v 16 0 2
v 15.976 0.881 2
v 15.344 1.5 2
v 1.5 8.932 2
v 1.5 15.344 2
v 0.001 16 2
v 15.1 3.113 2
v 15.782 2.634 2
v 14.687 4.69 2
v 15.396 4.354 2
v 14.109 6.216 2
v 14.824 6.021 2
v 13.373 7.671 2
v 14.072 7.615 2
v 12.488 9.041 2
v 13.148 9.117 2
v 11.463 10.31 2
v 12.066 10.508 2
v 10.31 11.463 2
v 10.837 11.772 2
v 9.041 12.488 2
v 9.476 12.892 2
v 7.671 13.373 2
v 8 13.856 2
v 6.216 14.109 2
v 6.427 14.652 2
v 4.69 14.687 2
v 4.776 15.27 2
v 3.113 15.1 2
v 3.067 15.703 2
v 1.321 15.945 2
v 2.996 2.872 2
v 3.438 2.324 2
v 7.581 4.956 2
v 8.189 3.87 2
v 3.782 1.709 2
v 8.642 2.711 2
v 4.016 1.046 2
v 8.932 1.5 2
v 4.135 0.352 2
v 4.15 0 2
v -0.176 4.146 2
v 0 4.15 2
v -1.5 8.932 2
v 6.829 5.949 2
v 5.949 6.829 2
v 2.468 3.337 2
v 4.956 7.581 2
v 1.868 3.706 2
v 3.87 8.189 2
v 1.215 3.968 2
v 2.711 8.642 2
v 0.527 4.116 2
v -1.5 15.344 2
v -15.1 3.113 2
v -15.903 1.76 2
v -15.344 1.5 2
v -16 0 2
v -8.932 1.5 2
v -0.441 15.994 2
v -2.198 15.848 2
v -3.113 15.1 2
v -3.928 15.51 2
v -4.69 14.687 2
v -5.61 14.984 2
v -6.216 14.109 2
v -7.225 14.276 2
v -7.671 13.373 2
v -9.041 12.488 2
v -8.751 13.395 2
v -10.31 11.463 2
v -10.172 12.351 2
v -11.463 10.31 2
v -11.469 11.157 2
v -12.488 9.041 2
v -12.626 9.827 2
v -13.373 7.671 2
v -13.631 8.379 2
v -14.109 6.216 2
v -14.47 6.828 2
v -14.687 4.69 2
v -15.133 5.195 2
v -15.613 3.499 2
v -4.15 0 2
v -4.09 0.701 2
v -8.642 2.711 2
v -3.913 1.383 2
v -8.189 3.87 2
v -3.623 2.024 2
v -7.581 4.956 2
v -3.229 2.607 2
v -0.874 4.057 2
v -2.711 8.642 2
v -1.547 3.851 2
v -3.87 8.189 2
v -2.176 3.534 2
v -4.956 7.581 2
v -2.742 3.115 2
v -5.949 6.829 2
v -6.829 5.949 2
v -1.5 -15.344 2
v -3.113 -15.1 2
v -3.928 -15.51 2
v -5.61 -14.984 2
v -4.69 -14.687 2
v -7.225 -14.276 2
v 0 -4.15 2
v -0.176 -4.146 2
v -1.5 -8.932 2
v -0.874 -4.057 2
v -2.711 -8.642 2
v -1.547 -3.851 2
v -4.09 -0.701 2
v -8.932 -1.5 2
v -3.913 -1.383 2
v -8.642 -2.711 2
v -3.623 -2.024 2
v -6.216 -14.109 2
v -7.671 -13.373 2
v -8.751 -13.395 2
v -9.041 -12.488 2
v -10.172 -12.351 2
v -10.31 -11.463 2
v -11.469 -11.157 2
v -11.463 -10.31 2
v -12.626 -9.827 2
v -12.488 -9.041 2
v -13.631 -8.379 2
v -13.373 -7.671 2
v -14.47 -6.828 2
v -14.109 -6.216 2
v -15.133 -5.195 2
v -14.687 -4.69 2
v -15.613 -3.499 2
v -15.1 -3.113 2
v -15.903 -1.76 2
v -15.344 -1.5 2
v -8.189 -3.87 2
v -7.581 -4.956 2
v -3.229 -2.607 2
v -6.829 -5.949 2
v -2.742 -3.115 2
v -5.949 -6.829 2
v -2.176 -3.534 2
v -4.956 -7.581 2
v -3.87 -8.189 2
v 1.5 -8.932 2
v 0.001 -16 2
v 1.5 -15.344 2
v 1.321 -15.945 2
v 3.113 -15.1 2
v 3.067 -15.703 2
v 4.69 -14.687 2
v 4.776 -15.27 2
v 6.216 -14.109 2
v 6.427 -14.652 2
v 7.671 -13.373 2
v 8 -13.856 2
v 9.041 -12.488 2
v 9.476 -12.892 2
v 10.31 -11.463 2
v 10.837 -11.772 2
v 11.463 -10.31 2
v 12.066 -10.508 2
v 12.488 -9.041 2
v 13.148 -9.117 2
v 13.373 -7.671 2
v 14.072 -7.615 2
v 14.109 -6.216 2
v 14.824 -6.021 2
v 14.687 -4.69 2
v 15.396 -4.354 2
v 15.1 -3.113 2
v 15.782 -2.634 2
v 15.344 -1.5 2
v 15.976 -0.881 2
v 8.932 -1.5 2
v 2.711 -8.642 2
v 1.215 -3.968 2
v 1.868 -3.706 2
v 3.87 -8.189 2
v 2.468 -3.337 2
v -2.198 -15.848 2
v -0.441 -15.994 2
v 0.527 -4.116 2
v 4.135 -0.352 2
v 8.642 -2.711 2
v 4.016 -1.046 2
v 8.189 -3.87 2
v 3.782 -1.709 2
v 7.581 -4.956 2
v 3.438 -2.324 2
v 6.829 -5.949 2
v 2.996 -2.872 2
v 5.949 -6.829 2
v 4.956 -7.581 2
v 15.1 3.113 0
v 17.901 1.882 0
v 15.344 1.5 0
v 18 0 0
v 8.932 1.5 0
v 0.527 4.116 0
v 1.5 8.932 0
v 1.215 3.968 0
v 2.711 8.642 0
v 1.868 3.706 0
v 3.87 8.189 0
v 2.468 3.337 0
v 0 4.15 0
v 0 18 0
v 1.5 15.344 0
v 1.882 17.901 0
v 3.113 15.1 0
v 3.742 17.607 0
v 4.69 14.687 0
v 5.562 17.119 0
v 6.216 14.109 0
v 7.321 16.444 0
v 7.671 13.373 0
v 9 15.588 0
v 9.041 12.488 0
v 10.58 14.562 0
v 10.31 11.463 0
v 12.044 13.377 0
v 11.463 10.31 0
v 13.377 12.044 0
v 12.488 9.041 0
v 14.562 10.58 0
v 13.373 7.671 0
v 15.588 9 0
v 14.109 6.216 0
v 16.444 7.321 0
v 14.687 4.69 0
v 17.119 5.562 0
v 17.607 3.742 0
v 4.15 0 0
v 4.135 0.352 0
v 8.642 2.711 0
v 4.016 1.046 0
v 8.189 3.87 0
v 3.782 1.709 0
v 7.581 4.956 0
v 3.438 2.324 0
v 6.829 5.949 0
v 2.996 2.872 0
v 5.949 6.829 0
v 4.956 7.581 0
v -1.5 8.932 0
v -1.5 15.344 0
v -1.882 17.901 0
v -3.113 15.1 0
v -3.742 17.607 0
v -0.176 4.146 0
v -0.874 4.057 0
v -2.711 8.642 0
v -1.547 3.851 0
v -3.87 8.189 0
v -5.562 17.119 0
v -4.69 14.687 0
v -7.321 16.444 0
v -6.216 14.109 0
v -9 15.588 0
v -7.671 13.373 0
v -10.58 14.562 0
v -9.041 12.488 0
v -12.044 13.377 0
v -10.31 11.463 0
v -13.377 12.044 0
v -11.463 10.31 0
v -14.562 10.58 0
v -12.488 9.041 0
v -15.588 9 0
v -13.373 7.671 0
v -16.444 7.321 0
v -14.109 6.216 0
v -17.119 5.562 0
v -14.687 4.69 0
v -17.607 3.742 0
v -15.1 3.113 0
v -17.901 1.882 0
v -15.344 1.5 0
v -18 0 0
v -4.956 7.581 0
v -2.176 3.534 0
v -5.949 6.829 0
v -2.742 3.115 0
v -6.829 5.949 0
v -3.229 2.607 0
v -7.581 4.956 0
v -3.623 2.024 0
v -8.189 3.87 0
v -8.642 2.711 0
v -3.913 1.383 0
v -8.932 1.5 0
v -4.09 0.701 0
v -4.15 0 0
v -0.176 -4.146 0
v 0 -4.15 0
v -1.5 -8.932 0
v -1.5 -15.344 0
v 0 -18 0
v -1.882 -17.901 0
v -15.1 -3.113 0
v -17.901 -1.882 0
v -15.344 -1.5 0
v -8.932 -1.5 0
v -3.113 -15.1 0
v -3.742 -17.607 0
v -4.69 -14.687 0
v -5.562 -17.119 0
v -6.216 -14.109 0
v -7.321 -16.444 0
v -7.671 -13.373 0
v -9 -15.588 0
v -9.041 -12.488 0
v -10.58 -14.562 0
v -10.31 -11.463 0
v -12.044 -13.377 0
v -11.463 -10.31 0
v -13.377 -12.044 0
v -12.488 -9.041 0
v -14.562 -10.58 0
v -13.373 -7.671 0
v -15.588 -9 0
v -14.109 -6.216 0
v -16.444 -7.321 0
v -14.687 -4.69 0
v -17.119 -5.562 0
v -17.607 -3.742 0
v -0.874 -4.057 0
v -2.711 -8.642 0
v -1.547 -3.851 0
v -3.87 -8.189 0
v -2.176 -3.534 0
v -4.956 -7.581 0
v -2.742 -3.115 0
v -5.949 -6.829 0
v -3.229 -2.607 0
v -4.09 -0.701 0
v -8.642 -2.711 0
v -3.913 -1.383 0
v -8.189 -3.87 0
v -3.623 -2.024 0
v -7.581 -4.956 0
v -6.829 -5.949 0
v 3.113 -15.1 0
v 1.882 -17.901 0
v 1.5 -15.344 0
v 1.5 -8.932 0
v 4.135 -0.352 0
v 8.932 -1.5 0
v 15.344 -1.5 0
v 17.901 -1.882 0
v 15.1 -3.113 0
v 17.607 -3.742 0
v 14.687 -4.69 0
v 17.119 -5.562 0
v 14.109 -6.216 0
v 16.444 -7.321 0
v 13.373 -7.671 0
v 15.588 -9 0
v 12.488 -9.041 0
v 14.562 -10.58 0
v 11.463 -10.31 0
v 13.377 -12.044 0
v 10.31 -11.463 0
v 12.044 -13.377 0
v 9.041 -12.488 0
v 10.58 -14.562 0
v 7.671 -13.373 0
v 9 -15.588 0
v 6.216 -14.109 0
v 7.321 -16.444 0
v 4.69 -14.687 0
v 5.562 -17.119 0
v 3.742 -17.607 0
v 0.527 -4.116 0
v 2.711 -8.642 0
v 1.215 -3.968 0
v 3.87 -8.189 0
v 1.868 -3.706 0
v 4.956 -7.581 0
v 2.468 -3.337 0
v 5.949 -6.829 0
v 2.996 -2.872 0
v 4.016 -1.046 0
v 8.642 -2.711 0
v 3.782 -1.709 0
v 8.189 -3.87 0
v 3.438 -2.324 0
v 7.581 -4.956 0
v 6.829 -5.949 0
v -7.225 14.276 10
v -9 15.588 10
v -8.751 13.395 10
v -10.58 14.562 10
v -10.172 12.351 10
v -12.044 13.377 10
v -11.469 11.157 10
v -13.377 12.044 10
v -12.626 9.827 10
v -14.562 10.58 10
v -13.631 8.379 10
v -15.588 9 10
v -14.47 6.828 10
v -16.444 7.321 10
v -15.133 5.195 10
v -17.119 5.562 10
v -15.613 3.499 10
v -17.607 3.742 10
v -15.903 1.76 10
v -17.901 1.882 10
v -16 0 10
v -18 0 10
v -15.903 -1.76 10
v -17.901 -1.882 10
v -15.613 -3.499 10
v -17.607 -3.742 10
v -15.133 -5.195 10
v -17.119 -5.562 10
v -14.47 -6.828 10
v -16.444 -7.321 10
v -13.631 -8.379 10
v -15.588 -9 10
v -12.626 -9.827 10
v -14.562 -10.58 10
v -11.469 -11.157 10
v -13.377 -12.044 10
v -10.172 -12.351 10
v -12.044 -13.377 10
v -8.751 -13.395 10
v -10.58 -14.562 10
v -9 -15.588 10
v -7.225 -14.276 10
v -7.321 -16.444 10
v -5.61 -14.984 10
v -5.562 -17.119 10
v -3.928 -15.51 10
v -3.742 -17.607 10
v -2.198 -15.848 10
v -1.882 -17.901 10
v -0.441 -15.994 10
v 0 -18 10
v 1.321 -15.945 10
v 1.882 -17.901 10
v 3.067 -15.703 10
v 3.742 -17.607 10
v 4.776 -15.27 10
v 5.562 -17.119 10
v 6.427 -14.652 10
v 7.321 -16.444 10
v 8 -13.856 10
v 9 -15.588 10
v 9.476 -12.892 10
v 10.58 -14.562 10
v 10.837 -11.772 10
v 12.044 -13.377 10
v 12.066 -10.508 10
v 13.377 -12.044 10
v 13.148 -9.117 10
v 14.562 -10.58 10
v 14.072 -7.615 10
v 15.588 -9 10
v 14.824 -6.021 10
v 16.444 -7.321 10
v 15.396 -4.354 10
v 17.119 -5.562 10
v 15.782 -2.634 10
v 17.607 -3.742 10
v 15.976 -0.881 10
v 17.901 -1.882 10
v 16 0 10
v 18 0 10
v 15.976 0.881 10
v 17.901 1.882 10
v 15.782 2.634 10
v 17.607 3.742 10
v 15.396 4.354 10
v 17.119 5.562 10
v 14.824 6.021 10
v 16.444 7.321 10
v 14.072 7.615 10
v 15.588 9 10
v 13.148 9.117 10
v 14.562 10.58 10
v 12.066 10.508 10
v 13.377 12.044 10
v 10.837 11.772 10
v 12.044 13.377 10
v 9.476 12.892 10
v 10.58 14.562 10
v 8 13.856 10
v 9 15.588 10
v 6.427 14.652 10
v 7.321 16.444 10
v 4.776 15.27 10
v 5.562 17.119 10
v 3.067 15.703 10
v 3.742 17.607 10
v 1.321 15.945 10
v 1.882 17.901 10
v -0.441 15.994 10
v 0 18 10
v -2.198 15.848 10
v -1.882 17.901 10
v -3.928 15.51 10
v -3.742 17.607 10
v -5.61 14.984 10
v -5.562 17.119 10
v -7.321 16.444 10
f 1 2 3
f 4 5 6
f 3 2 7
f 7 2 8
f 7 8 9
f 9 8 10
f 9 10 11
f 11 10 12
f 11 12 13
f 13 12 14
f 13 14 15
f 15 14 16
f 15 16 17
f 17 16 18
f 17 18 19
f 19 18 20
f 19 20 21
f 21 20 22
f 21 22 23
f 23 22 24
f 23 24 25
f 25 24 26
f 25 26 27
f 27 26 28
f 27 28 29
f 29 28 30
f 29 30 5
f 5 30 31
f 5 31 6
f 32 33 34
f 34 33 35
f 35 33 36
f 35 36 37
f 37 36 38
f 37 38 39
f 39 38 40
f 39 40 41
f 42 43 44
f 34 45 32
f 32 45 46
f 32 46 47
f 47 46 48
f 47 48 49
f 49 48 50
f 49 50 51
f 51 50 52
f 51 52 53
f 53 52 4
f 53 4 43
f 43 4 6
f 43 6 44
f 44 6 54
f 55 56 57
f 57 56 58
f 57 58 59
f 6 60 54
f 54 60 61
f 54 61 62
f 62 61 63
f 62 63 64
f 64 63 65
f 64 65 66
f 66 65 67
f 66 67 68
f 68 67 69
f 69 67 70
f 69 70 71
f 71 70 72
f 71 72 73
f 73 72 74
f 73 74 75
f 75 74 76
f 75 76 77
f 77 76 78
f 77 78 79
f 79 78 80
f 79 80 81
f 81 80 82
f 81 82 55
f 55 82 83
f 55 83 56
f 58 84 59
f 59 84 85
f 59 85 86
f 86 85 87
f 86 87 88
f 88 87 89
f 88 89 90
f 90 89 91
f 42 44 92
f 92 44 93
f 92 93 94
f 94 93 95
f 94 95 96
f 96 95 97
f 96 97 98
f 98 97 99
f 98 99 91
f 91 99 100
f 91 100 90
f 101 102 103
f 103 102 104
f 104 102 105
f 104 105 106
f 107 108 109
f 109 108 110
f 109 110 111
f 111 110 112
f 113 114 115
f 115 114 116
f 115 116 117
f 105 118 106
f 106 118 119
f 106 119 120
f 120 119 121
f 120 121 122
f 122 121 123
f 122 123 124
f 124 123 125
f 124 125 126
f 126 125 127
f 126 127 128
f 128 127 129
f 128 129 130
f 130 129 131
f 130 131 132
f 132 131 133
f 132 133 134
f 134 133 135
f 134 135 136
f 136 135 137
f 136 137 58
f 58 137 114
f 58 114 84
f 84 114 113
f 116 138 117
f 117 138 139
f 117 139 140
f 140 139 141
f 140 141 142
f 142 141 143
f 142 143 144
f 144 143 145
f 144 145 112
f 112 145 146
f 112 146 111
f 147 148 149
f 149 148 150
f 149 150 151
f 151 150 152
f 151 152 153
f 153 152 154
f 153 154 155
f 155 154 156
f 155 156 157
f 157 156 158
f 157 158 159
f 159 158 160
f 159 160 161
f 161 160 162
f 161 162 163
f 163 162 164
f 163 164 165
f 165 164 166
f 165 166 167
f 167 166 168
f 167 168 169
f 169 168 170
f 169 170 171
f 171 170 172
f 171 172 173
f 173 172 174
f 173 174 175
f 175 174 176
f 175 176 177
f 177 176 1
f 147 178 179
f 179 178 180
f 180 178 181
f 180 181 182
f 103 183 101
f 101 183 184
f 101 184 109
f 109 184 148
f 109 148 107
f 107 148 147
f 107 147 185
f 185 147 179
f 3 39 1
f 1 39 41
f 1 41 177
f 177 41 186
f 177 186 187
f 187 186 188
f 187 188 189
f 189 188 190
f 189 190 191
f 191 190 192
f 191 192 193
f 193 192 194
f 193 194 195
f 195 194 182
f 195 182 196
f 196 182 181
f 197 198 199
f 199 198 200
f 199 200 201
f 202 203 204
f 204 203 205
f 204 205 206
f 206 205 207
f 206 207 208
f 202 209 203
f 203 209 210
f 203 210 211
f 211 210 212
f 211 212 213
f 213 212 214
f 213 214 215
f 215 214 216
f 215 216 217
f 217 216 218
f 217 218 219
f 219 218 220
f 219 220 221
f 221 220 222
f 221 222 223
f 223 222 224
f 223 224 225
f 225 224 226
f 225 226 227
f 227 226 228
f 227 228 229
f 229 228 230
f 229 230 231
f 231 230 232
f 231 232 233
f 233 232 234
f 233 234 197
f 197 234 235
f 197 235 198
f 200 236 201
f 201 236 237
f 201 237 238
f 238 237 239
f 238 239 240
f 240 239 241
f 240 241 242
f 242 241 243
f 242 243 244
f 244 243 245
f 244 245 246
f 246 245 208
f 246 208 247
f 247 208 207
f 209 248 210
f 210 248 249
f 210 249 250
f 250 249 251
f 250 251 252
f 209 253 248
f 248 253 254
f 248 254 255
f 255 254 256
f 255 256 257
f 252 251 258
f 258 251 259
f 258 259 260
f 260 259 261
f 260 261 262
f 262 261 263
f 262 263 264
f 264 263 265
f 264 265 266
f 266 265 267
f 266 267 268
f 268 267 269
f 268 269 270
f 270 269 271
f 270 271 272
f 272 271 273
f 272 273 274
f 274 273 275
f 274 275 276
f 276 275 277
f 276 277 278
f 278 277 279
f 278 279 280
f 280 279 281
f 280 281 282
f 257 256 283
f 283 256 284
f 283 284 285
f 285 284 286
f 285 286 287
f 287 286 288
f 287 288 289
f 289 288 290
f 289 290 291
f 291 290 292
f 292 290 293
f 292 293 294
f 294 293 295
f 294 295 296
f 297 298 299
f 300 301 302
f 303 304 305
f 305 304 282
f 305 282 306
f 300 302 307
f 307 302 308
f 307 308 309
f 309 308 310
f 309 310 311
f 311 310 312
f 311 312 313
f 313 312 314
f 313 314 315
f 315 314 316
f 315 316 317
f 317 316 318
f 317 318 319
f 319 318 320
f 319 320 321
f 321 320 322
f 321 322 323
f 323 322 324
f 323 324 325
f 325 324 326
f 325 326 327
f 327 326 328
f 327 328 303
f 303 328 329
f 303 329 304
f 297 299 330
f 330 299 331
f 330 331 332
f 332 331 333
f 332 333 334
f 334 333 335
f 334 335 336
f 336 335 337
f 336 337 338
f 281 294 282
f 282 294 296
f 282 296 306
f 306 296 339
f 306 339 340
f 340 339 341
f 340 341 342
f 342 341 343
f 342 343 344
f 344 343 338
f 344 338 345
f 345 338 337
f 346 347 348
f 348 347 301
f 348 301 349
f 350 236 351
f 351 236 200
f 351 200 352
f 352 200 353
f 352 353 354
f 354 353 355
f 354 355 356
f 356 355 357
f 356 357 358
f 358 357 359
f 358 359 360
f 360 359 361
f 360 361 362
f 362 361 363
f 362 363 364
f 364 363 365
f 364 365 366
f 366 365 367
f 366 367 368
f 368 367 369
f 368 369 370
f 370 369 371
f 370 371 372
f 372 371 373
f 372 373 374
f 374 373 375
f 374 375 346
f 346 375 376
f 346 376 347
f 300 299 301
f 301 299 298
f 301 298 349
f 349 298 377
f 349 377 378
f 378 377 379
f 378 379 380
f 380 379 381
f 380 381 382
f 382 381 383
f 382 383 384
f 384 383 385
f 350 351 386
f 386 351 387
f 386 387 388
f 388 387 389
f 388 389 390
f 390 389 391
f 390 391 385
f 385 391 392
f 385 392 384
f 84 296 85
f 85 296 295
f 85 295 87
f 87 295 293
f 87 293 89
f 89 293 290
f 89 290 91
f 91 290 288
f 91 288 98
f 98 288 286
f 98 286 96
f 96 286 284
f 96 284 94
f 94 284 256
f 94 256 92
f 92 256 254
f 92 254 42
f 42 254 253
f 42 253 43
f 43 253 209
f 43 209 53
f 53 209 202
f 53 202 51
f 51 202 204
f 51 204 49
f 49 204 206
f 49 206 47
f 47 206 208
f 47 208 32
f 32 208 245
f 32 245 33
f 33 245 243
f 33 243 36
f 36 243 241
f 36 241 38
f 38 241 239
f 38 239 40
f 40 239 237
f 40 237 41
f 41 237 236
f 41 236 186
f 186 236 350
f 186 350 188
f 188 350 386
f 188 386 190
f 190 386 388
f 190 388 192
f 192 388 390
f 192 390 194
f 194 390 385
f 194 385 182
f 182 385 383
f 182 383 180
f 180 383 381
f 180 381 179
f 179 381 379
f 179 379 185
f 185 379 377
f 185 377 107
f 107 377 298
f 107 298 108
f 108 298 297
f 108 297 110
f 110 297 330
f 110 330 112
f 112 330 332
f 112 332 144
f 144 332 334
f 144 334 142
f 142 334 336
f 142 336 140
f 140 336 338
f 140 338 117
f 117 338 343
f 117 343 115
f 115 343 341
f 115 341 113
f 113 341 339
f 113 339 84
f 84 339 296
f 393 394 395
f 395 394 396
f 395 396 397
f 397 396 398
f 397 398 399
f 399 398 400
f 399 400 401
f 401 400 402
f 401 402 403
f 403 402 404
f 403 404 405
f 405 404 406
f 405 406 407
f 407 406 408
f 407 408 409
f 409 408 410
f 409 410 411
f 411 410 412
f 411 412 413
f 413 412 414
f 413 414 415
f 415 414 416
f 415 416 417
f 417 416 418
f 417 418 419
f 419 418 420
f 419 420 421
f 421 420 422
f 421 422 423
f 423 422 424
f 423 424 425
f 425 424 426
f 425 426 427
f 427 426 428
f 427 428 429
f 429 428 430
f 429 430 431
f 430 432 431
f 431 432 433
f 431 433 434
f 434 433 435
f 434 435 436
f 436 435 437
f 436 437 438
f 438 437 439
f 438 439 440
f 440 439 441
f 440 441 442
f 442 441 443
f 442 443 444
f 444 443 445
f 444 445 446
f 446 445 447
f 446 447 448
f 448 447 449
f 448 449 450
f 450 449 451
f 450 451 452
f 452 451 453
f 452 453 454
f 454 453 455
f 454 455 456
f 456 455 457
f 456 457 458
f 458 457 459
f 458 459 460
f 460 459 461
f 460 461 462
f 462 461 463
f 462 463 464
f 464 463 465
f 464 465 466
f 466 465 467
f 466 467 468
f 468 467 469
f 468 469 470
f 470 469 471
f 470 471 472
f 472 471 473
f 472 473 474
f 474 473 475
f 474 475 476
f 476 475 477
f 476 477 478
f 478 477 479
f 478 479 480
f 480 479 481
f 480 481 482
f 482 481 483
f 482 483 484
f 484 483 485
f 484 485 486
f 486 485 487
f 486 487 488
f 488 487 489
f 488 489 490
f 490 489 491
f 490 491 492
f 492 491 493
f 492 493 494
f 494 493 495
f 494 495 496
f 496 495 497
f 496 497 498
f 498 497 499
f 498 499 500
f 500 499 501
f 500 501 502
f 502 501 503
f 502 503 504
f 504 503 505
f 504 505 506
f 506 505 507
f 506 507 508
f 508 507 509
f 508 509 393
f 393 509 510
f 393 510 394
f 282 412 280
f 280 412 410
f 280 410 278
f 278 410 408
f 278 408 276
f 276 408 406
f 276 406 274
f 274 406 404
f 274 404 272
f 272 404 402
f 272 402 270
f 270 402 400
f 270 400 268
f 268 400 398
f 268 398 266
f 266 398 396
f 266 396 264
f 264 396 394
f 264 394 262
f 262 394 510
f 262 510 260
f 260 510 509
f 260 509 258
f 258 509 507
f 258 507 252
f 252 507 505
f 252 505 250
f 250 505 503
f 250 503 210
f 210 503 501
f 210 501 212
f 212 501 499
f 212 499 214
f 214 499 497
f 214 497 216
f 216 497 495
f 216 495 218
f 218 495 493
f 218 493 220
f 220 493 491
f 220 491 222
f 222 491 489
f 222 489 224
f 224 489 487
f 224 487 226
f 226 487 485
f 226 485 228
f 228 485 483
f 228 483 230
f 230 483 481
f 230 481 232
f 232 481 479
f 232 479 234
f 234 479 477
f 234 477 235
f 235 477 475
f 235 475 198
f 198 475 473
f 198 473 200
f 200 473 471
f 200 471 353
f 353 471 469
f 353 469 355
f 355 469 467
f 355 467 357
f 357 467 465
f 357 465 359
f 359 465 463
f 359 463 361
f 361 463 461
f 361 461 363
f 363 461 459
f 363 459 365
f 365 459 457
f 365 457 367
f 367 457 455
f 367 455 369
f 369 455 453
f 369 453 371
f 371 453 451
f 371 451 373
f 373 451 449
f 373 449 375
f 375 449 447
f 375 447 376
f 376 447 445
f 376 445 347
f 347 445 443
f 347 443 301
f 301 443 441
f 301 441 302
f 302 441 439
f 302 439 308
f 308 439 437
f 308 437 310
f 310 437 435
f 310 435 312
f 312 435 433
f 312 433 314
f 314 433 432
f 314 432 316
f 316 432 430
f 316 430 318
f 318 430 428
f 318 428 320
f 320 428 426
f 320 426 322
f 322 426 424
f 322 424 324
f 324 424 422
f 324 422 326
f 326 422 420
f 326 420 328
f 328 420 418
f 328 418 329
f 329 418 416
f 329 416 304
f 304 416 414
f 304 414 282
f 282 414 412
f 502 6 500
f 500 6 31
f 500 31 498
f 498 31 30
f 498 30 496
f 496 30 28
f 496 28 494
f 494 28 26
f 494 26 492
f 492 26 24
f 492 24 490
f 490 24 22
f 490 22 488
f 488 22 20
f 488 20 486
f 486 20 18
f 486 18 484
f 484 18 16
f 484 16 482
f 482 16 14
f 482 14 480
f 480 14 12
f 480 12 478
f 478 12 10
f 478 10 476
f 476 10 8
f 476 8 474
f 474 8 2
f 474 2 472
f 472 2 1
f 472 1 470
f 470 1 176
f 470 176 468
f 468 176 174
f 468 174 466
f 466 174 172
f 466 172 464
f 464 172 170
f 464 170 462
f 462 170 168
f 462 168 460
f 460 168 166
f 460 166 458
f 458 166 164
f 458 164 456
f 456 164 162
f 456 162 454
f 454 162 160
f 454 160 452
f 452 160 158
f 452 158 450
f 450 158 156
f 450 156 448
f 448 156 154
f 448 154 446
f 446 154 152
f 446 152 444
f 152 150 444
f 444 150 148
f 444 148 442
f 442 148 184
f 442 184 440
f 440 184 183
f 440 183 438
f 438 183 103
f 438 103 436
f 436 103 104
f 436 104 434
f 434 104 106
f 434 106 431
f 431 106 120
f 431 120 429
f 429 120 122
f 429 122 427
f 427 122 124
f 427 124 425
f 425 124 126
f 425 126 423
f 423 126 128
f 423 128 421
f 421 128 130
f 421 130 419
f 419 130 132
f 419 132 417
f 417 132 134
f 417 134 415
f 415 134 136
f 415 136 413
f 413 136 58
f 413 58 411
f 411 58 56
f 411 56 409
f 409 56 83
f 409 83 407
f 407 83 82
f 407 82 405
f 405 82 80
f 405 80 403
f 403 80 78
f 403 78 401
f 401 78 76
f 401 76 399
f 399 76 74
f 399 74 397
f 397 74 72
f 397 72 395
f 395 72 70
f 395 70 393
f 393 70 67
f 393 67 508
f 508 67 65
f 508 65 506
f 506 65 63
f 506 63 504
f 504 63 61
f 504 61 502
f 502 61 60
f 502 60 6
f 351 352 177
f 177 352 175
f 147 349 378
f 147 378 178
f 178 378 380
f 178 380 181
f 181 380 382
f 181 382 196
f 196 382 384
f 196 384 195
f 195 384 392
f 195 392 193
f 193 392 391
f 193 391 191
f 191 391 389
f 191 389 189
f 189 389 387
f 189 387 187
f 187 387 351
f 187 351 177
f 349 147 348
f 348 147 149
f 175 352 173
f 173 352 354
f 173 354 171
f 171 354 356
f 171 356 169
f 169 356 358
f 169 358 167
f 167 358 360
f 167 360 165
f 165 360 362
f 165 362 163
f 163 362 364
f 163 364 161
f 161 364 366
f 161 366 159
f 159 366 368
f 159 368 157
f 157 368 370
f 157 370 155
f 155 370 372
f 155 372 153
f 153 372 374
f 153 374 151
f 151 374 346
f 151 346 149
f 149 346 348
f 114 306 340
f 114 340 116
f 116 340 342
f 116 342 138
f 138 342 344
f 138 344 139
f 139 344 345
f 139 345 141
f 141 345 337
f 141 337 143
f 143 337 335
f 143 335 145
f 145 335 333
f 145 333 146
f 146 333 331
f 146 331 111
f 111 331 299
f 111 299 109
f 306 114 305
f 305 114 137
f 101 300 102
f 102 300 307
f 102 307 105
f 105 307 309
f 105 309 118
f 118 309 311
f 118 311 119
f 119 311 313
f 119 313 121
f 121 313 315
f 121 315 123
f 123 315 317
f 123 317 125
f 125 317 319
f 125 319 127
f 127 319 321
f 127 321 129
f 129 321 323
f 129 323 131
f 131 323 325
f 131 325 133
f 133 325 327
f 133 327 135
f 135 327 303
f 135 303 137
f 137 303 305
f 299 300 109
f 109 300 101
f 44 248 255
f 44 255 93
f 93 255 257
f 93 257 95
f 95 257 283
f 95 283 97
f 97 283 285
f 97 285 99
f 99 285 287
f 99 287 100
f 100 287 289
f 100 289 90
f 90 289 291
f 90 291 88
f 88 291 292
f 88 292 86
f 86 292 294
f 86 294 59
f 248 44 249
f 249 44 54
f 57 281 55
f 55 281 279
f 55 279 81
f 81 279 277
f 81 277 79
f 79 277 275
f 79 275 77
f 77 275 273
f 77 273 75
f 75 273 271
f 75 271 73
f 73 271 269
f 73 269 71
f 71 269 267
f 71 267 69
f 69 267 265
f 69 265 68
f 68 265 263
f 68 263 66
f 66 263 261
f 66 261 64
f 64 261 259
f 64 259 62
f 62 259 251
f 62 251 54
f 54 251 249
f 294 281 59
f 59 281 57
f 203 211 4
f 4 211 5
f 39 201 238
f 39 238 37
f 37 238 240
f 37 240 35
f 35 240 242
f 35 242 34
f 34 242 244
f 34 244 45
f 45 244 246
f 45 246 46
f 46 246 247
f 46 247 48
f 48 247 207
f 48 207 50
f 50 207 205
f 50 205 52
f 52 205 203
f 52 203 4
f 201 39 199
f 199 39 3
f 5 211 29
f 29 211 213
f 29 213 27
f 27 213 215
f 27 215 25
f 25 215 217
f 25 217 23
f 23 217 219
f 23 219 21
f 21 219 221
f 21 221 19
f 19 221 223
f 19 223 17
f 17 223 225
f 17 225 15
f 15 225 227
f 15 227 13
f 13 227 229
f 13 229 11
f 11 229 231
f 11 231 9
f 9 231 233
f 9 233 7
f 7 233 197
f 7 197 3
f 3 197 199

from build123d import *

# Parameters (mm, degrees)
ESBO_O1_R                = 16
ESBO_O1_R_2              = 4.15
RESSALTO_EXTRUS_O1_DEPTH = 2
ESBO_O2_R                = 18
ESBO_O2_R_2              = 16
RESSALTO_EXTRUS_O2_DEPTH = 10
CORTE_EXTRUS_O1_DEPTH    = 10


with BuildPart() as part:
    # Esboço1 → Ressalto-extrusão1 (new body)
    with BuildSketch(Plane.XY):
        Circle(ESBO_O1_R)
        Circle(ESBO_O1_R_2, mode=Mode.SUBTRACT)
    extrude(amount=RESSALTO_EXTRUS_O1_DEPTH)

    # Esboço2 → Ressalto-extrusão2 (add)
    with BuildSketch(Plane.XY):
        Circle(ESBO_O2_R)
        Circle(ESBO_O2_R_2, mode=Mode.SUBTRACT)
    extrude(amount=RESSALTO_EXTRUS_O2_DEPTH)

    # Esboço3 → Corte-extrusão1 (cut)
    with BuildSketch(Plane(origin=(0, 0, 0), x_dir=(-1, 0, 0), z_dir=(0, 0, -1))):
        with BuildLine():
            ThreePointArc((-1.5, -8.932222345), (-6.404474843, -6.404474843), (-8.932222345, -1.5))
            Line((-8.932222345, -1.5), (-15.344338178, -1.5))
            ThreePointArc((-15.344338178, -1.5), (-10.90180522, -10.90180522), (-1.5, -15.344338178))
            Line((-1.5, -15.344338178), (-1.5, -8.932222345))
        make_face()
        with BuildLine():
            ThreePointArc((8.932222345, -1.5), (6.404474843, -6.404474843), (1.5, -8.932222345))
            Line((1.5, -8.932222345), (1.5, -15.344338178))
            ThreePointArc((1.5, -15.344338178), (10.90180522, -10.90180522), (15.344338178, -1.5))
            Line((15.344338178, -1.5), (8.932222345, -1.5))
        make_face()
        with BuildLine():
            ThreePointArc((1.5, 8.932222345), (6.404474843, 6.404474843), (8.932222345, 1.5))
            Line((8.932222345, 1.5), (15.344338178, 1.5))
            ThreePointArc((15.344338178, 1.5), (10.90180522, 10.90180522), (1.5, 15.344338178))
            Line((1.5, 15.344338178), (1.5, 8.932222345))
        make_face()
        with BuildLine():
            ThreePointArc((-8.932222345, 1.5), (-6.404474843, 6.404474843), (-1.5, 8.932222345))
            Line((-1.5, 8.932222345), (-1.5, 15.344338178))
            ThreePointArc((-1.5, 15.344338178), (-10.90180522, 10.90180522), (-15.344338178, 1.5))
            Line((-15.344338178, 1.5), (-8.932222345, 1.5))
        make_face()
    extrude(amount=-CORTE_EXTRUS_O1_DEPTH, mode=Mode.SUBTRACT)


solid = part.part
